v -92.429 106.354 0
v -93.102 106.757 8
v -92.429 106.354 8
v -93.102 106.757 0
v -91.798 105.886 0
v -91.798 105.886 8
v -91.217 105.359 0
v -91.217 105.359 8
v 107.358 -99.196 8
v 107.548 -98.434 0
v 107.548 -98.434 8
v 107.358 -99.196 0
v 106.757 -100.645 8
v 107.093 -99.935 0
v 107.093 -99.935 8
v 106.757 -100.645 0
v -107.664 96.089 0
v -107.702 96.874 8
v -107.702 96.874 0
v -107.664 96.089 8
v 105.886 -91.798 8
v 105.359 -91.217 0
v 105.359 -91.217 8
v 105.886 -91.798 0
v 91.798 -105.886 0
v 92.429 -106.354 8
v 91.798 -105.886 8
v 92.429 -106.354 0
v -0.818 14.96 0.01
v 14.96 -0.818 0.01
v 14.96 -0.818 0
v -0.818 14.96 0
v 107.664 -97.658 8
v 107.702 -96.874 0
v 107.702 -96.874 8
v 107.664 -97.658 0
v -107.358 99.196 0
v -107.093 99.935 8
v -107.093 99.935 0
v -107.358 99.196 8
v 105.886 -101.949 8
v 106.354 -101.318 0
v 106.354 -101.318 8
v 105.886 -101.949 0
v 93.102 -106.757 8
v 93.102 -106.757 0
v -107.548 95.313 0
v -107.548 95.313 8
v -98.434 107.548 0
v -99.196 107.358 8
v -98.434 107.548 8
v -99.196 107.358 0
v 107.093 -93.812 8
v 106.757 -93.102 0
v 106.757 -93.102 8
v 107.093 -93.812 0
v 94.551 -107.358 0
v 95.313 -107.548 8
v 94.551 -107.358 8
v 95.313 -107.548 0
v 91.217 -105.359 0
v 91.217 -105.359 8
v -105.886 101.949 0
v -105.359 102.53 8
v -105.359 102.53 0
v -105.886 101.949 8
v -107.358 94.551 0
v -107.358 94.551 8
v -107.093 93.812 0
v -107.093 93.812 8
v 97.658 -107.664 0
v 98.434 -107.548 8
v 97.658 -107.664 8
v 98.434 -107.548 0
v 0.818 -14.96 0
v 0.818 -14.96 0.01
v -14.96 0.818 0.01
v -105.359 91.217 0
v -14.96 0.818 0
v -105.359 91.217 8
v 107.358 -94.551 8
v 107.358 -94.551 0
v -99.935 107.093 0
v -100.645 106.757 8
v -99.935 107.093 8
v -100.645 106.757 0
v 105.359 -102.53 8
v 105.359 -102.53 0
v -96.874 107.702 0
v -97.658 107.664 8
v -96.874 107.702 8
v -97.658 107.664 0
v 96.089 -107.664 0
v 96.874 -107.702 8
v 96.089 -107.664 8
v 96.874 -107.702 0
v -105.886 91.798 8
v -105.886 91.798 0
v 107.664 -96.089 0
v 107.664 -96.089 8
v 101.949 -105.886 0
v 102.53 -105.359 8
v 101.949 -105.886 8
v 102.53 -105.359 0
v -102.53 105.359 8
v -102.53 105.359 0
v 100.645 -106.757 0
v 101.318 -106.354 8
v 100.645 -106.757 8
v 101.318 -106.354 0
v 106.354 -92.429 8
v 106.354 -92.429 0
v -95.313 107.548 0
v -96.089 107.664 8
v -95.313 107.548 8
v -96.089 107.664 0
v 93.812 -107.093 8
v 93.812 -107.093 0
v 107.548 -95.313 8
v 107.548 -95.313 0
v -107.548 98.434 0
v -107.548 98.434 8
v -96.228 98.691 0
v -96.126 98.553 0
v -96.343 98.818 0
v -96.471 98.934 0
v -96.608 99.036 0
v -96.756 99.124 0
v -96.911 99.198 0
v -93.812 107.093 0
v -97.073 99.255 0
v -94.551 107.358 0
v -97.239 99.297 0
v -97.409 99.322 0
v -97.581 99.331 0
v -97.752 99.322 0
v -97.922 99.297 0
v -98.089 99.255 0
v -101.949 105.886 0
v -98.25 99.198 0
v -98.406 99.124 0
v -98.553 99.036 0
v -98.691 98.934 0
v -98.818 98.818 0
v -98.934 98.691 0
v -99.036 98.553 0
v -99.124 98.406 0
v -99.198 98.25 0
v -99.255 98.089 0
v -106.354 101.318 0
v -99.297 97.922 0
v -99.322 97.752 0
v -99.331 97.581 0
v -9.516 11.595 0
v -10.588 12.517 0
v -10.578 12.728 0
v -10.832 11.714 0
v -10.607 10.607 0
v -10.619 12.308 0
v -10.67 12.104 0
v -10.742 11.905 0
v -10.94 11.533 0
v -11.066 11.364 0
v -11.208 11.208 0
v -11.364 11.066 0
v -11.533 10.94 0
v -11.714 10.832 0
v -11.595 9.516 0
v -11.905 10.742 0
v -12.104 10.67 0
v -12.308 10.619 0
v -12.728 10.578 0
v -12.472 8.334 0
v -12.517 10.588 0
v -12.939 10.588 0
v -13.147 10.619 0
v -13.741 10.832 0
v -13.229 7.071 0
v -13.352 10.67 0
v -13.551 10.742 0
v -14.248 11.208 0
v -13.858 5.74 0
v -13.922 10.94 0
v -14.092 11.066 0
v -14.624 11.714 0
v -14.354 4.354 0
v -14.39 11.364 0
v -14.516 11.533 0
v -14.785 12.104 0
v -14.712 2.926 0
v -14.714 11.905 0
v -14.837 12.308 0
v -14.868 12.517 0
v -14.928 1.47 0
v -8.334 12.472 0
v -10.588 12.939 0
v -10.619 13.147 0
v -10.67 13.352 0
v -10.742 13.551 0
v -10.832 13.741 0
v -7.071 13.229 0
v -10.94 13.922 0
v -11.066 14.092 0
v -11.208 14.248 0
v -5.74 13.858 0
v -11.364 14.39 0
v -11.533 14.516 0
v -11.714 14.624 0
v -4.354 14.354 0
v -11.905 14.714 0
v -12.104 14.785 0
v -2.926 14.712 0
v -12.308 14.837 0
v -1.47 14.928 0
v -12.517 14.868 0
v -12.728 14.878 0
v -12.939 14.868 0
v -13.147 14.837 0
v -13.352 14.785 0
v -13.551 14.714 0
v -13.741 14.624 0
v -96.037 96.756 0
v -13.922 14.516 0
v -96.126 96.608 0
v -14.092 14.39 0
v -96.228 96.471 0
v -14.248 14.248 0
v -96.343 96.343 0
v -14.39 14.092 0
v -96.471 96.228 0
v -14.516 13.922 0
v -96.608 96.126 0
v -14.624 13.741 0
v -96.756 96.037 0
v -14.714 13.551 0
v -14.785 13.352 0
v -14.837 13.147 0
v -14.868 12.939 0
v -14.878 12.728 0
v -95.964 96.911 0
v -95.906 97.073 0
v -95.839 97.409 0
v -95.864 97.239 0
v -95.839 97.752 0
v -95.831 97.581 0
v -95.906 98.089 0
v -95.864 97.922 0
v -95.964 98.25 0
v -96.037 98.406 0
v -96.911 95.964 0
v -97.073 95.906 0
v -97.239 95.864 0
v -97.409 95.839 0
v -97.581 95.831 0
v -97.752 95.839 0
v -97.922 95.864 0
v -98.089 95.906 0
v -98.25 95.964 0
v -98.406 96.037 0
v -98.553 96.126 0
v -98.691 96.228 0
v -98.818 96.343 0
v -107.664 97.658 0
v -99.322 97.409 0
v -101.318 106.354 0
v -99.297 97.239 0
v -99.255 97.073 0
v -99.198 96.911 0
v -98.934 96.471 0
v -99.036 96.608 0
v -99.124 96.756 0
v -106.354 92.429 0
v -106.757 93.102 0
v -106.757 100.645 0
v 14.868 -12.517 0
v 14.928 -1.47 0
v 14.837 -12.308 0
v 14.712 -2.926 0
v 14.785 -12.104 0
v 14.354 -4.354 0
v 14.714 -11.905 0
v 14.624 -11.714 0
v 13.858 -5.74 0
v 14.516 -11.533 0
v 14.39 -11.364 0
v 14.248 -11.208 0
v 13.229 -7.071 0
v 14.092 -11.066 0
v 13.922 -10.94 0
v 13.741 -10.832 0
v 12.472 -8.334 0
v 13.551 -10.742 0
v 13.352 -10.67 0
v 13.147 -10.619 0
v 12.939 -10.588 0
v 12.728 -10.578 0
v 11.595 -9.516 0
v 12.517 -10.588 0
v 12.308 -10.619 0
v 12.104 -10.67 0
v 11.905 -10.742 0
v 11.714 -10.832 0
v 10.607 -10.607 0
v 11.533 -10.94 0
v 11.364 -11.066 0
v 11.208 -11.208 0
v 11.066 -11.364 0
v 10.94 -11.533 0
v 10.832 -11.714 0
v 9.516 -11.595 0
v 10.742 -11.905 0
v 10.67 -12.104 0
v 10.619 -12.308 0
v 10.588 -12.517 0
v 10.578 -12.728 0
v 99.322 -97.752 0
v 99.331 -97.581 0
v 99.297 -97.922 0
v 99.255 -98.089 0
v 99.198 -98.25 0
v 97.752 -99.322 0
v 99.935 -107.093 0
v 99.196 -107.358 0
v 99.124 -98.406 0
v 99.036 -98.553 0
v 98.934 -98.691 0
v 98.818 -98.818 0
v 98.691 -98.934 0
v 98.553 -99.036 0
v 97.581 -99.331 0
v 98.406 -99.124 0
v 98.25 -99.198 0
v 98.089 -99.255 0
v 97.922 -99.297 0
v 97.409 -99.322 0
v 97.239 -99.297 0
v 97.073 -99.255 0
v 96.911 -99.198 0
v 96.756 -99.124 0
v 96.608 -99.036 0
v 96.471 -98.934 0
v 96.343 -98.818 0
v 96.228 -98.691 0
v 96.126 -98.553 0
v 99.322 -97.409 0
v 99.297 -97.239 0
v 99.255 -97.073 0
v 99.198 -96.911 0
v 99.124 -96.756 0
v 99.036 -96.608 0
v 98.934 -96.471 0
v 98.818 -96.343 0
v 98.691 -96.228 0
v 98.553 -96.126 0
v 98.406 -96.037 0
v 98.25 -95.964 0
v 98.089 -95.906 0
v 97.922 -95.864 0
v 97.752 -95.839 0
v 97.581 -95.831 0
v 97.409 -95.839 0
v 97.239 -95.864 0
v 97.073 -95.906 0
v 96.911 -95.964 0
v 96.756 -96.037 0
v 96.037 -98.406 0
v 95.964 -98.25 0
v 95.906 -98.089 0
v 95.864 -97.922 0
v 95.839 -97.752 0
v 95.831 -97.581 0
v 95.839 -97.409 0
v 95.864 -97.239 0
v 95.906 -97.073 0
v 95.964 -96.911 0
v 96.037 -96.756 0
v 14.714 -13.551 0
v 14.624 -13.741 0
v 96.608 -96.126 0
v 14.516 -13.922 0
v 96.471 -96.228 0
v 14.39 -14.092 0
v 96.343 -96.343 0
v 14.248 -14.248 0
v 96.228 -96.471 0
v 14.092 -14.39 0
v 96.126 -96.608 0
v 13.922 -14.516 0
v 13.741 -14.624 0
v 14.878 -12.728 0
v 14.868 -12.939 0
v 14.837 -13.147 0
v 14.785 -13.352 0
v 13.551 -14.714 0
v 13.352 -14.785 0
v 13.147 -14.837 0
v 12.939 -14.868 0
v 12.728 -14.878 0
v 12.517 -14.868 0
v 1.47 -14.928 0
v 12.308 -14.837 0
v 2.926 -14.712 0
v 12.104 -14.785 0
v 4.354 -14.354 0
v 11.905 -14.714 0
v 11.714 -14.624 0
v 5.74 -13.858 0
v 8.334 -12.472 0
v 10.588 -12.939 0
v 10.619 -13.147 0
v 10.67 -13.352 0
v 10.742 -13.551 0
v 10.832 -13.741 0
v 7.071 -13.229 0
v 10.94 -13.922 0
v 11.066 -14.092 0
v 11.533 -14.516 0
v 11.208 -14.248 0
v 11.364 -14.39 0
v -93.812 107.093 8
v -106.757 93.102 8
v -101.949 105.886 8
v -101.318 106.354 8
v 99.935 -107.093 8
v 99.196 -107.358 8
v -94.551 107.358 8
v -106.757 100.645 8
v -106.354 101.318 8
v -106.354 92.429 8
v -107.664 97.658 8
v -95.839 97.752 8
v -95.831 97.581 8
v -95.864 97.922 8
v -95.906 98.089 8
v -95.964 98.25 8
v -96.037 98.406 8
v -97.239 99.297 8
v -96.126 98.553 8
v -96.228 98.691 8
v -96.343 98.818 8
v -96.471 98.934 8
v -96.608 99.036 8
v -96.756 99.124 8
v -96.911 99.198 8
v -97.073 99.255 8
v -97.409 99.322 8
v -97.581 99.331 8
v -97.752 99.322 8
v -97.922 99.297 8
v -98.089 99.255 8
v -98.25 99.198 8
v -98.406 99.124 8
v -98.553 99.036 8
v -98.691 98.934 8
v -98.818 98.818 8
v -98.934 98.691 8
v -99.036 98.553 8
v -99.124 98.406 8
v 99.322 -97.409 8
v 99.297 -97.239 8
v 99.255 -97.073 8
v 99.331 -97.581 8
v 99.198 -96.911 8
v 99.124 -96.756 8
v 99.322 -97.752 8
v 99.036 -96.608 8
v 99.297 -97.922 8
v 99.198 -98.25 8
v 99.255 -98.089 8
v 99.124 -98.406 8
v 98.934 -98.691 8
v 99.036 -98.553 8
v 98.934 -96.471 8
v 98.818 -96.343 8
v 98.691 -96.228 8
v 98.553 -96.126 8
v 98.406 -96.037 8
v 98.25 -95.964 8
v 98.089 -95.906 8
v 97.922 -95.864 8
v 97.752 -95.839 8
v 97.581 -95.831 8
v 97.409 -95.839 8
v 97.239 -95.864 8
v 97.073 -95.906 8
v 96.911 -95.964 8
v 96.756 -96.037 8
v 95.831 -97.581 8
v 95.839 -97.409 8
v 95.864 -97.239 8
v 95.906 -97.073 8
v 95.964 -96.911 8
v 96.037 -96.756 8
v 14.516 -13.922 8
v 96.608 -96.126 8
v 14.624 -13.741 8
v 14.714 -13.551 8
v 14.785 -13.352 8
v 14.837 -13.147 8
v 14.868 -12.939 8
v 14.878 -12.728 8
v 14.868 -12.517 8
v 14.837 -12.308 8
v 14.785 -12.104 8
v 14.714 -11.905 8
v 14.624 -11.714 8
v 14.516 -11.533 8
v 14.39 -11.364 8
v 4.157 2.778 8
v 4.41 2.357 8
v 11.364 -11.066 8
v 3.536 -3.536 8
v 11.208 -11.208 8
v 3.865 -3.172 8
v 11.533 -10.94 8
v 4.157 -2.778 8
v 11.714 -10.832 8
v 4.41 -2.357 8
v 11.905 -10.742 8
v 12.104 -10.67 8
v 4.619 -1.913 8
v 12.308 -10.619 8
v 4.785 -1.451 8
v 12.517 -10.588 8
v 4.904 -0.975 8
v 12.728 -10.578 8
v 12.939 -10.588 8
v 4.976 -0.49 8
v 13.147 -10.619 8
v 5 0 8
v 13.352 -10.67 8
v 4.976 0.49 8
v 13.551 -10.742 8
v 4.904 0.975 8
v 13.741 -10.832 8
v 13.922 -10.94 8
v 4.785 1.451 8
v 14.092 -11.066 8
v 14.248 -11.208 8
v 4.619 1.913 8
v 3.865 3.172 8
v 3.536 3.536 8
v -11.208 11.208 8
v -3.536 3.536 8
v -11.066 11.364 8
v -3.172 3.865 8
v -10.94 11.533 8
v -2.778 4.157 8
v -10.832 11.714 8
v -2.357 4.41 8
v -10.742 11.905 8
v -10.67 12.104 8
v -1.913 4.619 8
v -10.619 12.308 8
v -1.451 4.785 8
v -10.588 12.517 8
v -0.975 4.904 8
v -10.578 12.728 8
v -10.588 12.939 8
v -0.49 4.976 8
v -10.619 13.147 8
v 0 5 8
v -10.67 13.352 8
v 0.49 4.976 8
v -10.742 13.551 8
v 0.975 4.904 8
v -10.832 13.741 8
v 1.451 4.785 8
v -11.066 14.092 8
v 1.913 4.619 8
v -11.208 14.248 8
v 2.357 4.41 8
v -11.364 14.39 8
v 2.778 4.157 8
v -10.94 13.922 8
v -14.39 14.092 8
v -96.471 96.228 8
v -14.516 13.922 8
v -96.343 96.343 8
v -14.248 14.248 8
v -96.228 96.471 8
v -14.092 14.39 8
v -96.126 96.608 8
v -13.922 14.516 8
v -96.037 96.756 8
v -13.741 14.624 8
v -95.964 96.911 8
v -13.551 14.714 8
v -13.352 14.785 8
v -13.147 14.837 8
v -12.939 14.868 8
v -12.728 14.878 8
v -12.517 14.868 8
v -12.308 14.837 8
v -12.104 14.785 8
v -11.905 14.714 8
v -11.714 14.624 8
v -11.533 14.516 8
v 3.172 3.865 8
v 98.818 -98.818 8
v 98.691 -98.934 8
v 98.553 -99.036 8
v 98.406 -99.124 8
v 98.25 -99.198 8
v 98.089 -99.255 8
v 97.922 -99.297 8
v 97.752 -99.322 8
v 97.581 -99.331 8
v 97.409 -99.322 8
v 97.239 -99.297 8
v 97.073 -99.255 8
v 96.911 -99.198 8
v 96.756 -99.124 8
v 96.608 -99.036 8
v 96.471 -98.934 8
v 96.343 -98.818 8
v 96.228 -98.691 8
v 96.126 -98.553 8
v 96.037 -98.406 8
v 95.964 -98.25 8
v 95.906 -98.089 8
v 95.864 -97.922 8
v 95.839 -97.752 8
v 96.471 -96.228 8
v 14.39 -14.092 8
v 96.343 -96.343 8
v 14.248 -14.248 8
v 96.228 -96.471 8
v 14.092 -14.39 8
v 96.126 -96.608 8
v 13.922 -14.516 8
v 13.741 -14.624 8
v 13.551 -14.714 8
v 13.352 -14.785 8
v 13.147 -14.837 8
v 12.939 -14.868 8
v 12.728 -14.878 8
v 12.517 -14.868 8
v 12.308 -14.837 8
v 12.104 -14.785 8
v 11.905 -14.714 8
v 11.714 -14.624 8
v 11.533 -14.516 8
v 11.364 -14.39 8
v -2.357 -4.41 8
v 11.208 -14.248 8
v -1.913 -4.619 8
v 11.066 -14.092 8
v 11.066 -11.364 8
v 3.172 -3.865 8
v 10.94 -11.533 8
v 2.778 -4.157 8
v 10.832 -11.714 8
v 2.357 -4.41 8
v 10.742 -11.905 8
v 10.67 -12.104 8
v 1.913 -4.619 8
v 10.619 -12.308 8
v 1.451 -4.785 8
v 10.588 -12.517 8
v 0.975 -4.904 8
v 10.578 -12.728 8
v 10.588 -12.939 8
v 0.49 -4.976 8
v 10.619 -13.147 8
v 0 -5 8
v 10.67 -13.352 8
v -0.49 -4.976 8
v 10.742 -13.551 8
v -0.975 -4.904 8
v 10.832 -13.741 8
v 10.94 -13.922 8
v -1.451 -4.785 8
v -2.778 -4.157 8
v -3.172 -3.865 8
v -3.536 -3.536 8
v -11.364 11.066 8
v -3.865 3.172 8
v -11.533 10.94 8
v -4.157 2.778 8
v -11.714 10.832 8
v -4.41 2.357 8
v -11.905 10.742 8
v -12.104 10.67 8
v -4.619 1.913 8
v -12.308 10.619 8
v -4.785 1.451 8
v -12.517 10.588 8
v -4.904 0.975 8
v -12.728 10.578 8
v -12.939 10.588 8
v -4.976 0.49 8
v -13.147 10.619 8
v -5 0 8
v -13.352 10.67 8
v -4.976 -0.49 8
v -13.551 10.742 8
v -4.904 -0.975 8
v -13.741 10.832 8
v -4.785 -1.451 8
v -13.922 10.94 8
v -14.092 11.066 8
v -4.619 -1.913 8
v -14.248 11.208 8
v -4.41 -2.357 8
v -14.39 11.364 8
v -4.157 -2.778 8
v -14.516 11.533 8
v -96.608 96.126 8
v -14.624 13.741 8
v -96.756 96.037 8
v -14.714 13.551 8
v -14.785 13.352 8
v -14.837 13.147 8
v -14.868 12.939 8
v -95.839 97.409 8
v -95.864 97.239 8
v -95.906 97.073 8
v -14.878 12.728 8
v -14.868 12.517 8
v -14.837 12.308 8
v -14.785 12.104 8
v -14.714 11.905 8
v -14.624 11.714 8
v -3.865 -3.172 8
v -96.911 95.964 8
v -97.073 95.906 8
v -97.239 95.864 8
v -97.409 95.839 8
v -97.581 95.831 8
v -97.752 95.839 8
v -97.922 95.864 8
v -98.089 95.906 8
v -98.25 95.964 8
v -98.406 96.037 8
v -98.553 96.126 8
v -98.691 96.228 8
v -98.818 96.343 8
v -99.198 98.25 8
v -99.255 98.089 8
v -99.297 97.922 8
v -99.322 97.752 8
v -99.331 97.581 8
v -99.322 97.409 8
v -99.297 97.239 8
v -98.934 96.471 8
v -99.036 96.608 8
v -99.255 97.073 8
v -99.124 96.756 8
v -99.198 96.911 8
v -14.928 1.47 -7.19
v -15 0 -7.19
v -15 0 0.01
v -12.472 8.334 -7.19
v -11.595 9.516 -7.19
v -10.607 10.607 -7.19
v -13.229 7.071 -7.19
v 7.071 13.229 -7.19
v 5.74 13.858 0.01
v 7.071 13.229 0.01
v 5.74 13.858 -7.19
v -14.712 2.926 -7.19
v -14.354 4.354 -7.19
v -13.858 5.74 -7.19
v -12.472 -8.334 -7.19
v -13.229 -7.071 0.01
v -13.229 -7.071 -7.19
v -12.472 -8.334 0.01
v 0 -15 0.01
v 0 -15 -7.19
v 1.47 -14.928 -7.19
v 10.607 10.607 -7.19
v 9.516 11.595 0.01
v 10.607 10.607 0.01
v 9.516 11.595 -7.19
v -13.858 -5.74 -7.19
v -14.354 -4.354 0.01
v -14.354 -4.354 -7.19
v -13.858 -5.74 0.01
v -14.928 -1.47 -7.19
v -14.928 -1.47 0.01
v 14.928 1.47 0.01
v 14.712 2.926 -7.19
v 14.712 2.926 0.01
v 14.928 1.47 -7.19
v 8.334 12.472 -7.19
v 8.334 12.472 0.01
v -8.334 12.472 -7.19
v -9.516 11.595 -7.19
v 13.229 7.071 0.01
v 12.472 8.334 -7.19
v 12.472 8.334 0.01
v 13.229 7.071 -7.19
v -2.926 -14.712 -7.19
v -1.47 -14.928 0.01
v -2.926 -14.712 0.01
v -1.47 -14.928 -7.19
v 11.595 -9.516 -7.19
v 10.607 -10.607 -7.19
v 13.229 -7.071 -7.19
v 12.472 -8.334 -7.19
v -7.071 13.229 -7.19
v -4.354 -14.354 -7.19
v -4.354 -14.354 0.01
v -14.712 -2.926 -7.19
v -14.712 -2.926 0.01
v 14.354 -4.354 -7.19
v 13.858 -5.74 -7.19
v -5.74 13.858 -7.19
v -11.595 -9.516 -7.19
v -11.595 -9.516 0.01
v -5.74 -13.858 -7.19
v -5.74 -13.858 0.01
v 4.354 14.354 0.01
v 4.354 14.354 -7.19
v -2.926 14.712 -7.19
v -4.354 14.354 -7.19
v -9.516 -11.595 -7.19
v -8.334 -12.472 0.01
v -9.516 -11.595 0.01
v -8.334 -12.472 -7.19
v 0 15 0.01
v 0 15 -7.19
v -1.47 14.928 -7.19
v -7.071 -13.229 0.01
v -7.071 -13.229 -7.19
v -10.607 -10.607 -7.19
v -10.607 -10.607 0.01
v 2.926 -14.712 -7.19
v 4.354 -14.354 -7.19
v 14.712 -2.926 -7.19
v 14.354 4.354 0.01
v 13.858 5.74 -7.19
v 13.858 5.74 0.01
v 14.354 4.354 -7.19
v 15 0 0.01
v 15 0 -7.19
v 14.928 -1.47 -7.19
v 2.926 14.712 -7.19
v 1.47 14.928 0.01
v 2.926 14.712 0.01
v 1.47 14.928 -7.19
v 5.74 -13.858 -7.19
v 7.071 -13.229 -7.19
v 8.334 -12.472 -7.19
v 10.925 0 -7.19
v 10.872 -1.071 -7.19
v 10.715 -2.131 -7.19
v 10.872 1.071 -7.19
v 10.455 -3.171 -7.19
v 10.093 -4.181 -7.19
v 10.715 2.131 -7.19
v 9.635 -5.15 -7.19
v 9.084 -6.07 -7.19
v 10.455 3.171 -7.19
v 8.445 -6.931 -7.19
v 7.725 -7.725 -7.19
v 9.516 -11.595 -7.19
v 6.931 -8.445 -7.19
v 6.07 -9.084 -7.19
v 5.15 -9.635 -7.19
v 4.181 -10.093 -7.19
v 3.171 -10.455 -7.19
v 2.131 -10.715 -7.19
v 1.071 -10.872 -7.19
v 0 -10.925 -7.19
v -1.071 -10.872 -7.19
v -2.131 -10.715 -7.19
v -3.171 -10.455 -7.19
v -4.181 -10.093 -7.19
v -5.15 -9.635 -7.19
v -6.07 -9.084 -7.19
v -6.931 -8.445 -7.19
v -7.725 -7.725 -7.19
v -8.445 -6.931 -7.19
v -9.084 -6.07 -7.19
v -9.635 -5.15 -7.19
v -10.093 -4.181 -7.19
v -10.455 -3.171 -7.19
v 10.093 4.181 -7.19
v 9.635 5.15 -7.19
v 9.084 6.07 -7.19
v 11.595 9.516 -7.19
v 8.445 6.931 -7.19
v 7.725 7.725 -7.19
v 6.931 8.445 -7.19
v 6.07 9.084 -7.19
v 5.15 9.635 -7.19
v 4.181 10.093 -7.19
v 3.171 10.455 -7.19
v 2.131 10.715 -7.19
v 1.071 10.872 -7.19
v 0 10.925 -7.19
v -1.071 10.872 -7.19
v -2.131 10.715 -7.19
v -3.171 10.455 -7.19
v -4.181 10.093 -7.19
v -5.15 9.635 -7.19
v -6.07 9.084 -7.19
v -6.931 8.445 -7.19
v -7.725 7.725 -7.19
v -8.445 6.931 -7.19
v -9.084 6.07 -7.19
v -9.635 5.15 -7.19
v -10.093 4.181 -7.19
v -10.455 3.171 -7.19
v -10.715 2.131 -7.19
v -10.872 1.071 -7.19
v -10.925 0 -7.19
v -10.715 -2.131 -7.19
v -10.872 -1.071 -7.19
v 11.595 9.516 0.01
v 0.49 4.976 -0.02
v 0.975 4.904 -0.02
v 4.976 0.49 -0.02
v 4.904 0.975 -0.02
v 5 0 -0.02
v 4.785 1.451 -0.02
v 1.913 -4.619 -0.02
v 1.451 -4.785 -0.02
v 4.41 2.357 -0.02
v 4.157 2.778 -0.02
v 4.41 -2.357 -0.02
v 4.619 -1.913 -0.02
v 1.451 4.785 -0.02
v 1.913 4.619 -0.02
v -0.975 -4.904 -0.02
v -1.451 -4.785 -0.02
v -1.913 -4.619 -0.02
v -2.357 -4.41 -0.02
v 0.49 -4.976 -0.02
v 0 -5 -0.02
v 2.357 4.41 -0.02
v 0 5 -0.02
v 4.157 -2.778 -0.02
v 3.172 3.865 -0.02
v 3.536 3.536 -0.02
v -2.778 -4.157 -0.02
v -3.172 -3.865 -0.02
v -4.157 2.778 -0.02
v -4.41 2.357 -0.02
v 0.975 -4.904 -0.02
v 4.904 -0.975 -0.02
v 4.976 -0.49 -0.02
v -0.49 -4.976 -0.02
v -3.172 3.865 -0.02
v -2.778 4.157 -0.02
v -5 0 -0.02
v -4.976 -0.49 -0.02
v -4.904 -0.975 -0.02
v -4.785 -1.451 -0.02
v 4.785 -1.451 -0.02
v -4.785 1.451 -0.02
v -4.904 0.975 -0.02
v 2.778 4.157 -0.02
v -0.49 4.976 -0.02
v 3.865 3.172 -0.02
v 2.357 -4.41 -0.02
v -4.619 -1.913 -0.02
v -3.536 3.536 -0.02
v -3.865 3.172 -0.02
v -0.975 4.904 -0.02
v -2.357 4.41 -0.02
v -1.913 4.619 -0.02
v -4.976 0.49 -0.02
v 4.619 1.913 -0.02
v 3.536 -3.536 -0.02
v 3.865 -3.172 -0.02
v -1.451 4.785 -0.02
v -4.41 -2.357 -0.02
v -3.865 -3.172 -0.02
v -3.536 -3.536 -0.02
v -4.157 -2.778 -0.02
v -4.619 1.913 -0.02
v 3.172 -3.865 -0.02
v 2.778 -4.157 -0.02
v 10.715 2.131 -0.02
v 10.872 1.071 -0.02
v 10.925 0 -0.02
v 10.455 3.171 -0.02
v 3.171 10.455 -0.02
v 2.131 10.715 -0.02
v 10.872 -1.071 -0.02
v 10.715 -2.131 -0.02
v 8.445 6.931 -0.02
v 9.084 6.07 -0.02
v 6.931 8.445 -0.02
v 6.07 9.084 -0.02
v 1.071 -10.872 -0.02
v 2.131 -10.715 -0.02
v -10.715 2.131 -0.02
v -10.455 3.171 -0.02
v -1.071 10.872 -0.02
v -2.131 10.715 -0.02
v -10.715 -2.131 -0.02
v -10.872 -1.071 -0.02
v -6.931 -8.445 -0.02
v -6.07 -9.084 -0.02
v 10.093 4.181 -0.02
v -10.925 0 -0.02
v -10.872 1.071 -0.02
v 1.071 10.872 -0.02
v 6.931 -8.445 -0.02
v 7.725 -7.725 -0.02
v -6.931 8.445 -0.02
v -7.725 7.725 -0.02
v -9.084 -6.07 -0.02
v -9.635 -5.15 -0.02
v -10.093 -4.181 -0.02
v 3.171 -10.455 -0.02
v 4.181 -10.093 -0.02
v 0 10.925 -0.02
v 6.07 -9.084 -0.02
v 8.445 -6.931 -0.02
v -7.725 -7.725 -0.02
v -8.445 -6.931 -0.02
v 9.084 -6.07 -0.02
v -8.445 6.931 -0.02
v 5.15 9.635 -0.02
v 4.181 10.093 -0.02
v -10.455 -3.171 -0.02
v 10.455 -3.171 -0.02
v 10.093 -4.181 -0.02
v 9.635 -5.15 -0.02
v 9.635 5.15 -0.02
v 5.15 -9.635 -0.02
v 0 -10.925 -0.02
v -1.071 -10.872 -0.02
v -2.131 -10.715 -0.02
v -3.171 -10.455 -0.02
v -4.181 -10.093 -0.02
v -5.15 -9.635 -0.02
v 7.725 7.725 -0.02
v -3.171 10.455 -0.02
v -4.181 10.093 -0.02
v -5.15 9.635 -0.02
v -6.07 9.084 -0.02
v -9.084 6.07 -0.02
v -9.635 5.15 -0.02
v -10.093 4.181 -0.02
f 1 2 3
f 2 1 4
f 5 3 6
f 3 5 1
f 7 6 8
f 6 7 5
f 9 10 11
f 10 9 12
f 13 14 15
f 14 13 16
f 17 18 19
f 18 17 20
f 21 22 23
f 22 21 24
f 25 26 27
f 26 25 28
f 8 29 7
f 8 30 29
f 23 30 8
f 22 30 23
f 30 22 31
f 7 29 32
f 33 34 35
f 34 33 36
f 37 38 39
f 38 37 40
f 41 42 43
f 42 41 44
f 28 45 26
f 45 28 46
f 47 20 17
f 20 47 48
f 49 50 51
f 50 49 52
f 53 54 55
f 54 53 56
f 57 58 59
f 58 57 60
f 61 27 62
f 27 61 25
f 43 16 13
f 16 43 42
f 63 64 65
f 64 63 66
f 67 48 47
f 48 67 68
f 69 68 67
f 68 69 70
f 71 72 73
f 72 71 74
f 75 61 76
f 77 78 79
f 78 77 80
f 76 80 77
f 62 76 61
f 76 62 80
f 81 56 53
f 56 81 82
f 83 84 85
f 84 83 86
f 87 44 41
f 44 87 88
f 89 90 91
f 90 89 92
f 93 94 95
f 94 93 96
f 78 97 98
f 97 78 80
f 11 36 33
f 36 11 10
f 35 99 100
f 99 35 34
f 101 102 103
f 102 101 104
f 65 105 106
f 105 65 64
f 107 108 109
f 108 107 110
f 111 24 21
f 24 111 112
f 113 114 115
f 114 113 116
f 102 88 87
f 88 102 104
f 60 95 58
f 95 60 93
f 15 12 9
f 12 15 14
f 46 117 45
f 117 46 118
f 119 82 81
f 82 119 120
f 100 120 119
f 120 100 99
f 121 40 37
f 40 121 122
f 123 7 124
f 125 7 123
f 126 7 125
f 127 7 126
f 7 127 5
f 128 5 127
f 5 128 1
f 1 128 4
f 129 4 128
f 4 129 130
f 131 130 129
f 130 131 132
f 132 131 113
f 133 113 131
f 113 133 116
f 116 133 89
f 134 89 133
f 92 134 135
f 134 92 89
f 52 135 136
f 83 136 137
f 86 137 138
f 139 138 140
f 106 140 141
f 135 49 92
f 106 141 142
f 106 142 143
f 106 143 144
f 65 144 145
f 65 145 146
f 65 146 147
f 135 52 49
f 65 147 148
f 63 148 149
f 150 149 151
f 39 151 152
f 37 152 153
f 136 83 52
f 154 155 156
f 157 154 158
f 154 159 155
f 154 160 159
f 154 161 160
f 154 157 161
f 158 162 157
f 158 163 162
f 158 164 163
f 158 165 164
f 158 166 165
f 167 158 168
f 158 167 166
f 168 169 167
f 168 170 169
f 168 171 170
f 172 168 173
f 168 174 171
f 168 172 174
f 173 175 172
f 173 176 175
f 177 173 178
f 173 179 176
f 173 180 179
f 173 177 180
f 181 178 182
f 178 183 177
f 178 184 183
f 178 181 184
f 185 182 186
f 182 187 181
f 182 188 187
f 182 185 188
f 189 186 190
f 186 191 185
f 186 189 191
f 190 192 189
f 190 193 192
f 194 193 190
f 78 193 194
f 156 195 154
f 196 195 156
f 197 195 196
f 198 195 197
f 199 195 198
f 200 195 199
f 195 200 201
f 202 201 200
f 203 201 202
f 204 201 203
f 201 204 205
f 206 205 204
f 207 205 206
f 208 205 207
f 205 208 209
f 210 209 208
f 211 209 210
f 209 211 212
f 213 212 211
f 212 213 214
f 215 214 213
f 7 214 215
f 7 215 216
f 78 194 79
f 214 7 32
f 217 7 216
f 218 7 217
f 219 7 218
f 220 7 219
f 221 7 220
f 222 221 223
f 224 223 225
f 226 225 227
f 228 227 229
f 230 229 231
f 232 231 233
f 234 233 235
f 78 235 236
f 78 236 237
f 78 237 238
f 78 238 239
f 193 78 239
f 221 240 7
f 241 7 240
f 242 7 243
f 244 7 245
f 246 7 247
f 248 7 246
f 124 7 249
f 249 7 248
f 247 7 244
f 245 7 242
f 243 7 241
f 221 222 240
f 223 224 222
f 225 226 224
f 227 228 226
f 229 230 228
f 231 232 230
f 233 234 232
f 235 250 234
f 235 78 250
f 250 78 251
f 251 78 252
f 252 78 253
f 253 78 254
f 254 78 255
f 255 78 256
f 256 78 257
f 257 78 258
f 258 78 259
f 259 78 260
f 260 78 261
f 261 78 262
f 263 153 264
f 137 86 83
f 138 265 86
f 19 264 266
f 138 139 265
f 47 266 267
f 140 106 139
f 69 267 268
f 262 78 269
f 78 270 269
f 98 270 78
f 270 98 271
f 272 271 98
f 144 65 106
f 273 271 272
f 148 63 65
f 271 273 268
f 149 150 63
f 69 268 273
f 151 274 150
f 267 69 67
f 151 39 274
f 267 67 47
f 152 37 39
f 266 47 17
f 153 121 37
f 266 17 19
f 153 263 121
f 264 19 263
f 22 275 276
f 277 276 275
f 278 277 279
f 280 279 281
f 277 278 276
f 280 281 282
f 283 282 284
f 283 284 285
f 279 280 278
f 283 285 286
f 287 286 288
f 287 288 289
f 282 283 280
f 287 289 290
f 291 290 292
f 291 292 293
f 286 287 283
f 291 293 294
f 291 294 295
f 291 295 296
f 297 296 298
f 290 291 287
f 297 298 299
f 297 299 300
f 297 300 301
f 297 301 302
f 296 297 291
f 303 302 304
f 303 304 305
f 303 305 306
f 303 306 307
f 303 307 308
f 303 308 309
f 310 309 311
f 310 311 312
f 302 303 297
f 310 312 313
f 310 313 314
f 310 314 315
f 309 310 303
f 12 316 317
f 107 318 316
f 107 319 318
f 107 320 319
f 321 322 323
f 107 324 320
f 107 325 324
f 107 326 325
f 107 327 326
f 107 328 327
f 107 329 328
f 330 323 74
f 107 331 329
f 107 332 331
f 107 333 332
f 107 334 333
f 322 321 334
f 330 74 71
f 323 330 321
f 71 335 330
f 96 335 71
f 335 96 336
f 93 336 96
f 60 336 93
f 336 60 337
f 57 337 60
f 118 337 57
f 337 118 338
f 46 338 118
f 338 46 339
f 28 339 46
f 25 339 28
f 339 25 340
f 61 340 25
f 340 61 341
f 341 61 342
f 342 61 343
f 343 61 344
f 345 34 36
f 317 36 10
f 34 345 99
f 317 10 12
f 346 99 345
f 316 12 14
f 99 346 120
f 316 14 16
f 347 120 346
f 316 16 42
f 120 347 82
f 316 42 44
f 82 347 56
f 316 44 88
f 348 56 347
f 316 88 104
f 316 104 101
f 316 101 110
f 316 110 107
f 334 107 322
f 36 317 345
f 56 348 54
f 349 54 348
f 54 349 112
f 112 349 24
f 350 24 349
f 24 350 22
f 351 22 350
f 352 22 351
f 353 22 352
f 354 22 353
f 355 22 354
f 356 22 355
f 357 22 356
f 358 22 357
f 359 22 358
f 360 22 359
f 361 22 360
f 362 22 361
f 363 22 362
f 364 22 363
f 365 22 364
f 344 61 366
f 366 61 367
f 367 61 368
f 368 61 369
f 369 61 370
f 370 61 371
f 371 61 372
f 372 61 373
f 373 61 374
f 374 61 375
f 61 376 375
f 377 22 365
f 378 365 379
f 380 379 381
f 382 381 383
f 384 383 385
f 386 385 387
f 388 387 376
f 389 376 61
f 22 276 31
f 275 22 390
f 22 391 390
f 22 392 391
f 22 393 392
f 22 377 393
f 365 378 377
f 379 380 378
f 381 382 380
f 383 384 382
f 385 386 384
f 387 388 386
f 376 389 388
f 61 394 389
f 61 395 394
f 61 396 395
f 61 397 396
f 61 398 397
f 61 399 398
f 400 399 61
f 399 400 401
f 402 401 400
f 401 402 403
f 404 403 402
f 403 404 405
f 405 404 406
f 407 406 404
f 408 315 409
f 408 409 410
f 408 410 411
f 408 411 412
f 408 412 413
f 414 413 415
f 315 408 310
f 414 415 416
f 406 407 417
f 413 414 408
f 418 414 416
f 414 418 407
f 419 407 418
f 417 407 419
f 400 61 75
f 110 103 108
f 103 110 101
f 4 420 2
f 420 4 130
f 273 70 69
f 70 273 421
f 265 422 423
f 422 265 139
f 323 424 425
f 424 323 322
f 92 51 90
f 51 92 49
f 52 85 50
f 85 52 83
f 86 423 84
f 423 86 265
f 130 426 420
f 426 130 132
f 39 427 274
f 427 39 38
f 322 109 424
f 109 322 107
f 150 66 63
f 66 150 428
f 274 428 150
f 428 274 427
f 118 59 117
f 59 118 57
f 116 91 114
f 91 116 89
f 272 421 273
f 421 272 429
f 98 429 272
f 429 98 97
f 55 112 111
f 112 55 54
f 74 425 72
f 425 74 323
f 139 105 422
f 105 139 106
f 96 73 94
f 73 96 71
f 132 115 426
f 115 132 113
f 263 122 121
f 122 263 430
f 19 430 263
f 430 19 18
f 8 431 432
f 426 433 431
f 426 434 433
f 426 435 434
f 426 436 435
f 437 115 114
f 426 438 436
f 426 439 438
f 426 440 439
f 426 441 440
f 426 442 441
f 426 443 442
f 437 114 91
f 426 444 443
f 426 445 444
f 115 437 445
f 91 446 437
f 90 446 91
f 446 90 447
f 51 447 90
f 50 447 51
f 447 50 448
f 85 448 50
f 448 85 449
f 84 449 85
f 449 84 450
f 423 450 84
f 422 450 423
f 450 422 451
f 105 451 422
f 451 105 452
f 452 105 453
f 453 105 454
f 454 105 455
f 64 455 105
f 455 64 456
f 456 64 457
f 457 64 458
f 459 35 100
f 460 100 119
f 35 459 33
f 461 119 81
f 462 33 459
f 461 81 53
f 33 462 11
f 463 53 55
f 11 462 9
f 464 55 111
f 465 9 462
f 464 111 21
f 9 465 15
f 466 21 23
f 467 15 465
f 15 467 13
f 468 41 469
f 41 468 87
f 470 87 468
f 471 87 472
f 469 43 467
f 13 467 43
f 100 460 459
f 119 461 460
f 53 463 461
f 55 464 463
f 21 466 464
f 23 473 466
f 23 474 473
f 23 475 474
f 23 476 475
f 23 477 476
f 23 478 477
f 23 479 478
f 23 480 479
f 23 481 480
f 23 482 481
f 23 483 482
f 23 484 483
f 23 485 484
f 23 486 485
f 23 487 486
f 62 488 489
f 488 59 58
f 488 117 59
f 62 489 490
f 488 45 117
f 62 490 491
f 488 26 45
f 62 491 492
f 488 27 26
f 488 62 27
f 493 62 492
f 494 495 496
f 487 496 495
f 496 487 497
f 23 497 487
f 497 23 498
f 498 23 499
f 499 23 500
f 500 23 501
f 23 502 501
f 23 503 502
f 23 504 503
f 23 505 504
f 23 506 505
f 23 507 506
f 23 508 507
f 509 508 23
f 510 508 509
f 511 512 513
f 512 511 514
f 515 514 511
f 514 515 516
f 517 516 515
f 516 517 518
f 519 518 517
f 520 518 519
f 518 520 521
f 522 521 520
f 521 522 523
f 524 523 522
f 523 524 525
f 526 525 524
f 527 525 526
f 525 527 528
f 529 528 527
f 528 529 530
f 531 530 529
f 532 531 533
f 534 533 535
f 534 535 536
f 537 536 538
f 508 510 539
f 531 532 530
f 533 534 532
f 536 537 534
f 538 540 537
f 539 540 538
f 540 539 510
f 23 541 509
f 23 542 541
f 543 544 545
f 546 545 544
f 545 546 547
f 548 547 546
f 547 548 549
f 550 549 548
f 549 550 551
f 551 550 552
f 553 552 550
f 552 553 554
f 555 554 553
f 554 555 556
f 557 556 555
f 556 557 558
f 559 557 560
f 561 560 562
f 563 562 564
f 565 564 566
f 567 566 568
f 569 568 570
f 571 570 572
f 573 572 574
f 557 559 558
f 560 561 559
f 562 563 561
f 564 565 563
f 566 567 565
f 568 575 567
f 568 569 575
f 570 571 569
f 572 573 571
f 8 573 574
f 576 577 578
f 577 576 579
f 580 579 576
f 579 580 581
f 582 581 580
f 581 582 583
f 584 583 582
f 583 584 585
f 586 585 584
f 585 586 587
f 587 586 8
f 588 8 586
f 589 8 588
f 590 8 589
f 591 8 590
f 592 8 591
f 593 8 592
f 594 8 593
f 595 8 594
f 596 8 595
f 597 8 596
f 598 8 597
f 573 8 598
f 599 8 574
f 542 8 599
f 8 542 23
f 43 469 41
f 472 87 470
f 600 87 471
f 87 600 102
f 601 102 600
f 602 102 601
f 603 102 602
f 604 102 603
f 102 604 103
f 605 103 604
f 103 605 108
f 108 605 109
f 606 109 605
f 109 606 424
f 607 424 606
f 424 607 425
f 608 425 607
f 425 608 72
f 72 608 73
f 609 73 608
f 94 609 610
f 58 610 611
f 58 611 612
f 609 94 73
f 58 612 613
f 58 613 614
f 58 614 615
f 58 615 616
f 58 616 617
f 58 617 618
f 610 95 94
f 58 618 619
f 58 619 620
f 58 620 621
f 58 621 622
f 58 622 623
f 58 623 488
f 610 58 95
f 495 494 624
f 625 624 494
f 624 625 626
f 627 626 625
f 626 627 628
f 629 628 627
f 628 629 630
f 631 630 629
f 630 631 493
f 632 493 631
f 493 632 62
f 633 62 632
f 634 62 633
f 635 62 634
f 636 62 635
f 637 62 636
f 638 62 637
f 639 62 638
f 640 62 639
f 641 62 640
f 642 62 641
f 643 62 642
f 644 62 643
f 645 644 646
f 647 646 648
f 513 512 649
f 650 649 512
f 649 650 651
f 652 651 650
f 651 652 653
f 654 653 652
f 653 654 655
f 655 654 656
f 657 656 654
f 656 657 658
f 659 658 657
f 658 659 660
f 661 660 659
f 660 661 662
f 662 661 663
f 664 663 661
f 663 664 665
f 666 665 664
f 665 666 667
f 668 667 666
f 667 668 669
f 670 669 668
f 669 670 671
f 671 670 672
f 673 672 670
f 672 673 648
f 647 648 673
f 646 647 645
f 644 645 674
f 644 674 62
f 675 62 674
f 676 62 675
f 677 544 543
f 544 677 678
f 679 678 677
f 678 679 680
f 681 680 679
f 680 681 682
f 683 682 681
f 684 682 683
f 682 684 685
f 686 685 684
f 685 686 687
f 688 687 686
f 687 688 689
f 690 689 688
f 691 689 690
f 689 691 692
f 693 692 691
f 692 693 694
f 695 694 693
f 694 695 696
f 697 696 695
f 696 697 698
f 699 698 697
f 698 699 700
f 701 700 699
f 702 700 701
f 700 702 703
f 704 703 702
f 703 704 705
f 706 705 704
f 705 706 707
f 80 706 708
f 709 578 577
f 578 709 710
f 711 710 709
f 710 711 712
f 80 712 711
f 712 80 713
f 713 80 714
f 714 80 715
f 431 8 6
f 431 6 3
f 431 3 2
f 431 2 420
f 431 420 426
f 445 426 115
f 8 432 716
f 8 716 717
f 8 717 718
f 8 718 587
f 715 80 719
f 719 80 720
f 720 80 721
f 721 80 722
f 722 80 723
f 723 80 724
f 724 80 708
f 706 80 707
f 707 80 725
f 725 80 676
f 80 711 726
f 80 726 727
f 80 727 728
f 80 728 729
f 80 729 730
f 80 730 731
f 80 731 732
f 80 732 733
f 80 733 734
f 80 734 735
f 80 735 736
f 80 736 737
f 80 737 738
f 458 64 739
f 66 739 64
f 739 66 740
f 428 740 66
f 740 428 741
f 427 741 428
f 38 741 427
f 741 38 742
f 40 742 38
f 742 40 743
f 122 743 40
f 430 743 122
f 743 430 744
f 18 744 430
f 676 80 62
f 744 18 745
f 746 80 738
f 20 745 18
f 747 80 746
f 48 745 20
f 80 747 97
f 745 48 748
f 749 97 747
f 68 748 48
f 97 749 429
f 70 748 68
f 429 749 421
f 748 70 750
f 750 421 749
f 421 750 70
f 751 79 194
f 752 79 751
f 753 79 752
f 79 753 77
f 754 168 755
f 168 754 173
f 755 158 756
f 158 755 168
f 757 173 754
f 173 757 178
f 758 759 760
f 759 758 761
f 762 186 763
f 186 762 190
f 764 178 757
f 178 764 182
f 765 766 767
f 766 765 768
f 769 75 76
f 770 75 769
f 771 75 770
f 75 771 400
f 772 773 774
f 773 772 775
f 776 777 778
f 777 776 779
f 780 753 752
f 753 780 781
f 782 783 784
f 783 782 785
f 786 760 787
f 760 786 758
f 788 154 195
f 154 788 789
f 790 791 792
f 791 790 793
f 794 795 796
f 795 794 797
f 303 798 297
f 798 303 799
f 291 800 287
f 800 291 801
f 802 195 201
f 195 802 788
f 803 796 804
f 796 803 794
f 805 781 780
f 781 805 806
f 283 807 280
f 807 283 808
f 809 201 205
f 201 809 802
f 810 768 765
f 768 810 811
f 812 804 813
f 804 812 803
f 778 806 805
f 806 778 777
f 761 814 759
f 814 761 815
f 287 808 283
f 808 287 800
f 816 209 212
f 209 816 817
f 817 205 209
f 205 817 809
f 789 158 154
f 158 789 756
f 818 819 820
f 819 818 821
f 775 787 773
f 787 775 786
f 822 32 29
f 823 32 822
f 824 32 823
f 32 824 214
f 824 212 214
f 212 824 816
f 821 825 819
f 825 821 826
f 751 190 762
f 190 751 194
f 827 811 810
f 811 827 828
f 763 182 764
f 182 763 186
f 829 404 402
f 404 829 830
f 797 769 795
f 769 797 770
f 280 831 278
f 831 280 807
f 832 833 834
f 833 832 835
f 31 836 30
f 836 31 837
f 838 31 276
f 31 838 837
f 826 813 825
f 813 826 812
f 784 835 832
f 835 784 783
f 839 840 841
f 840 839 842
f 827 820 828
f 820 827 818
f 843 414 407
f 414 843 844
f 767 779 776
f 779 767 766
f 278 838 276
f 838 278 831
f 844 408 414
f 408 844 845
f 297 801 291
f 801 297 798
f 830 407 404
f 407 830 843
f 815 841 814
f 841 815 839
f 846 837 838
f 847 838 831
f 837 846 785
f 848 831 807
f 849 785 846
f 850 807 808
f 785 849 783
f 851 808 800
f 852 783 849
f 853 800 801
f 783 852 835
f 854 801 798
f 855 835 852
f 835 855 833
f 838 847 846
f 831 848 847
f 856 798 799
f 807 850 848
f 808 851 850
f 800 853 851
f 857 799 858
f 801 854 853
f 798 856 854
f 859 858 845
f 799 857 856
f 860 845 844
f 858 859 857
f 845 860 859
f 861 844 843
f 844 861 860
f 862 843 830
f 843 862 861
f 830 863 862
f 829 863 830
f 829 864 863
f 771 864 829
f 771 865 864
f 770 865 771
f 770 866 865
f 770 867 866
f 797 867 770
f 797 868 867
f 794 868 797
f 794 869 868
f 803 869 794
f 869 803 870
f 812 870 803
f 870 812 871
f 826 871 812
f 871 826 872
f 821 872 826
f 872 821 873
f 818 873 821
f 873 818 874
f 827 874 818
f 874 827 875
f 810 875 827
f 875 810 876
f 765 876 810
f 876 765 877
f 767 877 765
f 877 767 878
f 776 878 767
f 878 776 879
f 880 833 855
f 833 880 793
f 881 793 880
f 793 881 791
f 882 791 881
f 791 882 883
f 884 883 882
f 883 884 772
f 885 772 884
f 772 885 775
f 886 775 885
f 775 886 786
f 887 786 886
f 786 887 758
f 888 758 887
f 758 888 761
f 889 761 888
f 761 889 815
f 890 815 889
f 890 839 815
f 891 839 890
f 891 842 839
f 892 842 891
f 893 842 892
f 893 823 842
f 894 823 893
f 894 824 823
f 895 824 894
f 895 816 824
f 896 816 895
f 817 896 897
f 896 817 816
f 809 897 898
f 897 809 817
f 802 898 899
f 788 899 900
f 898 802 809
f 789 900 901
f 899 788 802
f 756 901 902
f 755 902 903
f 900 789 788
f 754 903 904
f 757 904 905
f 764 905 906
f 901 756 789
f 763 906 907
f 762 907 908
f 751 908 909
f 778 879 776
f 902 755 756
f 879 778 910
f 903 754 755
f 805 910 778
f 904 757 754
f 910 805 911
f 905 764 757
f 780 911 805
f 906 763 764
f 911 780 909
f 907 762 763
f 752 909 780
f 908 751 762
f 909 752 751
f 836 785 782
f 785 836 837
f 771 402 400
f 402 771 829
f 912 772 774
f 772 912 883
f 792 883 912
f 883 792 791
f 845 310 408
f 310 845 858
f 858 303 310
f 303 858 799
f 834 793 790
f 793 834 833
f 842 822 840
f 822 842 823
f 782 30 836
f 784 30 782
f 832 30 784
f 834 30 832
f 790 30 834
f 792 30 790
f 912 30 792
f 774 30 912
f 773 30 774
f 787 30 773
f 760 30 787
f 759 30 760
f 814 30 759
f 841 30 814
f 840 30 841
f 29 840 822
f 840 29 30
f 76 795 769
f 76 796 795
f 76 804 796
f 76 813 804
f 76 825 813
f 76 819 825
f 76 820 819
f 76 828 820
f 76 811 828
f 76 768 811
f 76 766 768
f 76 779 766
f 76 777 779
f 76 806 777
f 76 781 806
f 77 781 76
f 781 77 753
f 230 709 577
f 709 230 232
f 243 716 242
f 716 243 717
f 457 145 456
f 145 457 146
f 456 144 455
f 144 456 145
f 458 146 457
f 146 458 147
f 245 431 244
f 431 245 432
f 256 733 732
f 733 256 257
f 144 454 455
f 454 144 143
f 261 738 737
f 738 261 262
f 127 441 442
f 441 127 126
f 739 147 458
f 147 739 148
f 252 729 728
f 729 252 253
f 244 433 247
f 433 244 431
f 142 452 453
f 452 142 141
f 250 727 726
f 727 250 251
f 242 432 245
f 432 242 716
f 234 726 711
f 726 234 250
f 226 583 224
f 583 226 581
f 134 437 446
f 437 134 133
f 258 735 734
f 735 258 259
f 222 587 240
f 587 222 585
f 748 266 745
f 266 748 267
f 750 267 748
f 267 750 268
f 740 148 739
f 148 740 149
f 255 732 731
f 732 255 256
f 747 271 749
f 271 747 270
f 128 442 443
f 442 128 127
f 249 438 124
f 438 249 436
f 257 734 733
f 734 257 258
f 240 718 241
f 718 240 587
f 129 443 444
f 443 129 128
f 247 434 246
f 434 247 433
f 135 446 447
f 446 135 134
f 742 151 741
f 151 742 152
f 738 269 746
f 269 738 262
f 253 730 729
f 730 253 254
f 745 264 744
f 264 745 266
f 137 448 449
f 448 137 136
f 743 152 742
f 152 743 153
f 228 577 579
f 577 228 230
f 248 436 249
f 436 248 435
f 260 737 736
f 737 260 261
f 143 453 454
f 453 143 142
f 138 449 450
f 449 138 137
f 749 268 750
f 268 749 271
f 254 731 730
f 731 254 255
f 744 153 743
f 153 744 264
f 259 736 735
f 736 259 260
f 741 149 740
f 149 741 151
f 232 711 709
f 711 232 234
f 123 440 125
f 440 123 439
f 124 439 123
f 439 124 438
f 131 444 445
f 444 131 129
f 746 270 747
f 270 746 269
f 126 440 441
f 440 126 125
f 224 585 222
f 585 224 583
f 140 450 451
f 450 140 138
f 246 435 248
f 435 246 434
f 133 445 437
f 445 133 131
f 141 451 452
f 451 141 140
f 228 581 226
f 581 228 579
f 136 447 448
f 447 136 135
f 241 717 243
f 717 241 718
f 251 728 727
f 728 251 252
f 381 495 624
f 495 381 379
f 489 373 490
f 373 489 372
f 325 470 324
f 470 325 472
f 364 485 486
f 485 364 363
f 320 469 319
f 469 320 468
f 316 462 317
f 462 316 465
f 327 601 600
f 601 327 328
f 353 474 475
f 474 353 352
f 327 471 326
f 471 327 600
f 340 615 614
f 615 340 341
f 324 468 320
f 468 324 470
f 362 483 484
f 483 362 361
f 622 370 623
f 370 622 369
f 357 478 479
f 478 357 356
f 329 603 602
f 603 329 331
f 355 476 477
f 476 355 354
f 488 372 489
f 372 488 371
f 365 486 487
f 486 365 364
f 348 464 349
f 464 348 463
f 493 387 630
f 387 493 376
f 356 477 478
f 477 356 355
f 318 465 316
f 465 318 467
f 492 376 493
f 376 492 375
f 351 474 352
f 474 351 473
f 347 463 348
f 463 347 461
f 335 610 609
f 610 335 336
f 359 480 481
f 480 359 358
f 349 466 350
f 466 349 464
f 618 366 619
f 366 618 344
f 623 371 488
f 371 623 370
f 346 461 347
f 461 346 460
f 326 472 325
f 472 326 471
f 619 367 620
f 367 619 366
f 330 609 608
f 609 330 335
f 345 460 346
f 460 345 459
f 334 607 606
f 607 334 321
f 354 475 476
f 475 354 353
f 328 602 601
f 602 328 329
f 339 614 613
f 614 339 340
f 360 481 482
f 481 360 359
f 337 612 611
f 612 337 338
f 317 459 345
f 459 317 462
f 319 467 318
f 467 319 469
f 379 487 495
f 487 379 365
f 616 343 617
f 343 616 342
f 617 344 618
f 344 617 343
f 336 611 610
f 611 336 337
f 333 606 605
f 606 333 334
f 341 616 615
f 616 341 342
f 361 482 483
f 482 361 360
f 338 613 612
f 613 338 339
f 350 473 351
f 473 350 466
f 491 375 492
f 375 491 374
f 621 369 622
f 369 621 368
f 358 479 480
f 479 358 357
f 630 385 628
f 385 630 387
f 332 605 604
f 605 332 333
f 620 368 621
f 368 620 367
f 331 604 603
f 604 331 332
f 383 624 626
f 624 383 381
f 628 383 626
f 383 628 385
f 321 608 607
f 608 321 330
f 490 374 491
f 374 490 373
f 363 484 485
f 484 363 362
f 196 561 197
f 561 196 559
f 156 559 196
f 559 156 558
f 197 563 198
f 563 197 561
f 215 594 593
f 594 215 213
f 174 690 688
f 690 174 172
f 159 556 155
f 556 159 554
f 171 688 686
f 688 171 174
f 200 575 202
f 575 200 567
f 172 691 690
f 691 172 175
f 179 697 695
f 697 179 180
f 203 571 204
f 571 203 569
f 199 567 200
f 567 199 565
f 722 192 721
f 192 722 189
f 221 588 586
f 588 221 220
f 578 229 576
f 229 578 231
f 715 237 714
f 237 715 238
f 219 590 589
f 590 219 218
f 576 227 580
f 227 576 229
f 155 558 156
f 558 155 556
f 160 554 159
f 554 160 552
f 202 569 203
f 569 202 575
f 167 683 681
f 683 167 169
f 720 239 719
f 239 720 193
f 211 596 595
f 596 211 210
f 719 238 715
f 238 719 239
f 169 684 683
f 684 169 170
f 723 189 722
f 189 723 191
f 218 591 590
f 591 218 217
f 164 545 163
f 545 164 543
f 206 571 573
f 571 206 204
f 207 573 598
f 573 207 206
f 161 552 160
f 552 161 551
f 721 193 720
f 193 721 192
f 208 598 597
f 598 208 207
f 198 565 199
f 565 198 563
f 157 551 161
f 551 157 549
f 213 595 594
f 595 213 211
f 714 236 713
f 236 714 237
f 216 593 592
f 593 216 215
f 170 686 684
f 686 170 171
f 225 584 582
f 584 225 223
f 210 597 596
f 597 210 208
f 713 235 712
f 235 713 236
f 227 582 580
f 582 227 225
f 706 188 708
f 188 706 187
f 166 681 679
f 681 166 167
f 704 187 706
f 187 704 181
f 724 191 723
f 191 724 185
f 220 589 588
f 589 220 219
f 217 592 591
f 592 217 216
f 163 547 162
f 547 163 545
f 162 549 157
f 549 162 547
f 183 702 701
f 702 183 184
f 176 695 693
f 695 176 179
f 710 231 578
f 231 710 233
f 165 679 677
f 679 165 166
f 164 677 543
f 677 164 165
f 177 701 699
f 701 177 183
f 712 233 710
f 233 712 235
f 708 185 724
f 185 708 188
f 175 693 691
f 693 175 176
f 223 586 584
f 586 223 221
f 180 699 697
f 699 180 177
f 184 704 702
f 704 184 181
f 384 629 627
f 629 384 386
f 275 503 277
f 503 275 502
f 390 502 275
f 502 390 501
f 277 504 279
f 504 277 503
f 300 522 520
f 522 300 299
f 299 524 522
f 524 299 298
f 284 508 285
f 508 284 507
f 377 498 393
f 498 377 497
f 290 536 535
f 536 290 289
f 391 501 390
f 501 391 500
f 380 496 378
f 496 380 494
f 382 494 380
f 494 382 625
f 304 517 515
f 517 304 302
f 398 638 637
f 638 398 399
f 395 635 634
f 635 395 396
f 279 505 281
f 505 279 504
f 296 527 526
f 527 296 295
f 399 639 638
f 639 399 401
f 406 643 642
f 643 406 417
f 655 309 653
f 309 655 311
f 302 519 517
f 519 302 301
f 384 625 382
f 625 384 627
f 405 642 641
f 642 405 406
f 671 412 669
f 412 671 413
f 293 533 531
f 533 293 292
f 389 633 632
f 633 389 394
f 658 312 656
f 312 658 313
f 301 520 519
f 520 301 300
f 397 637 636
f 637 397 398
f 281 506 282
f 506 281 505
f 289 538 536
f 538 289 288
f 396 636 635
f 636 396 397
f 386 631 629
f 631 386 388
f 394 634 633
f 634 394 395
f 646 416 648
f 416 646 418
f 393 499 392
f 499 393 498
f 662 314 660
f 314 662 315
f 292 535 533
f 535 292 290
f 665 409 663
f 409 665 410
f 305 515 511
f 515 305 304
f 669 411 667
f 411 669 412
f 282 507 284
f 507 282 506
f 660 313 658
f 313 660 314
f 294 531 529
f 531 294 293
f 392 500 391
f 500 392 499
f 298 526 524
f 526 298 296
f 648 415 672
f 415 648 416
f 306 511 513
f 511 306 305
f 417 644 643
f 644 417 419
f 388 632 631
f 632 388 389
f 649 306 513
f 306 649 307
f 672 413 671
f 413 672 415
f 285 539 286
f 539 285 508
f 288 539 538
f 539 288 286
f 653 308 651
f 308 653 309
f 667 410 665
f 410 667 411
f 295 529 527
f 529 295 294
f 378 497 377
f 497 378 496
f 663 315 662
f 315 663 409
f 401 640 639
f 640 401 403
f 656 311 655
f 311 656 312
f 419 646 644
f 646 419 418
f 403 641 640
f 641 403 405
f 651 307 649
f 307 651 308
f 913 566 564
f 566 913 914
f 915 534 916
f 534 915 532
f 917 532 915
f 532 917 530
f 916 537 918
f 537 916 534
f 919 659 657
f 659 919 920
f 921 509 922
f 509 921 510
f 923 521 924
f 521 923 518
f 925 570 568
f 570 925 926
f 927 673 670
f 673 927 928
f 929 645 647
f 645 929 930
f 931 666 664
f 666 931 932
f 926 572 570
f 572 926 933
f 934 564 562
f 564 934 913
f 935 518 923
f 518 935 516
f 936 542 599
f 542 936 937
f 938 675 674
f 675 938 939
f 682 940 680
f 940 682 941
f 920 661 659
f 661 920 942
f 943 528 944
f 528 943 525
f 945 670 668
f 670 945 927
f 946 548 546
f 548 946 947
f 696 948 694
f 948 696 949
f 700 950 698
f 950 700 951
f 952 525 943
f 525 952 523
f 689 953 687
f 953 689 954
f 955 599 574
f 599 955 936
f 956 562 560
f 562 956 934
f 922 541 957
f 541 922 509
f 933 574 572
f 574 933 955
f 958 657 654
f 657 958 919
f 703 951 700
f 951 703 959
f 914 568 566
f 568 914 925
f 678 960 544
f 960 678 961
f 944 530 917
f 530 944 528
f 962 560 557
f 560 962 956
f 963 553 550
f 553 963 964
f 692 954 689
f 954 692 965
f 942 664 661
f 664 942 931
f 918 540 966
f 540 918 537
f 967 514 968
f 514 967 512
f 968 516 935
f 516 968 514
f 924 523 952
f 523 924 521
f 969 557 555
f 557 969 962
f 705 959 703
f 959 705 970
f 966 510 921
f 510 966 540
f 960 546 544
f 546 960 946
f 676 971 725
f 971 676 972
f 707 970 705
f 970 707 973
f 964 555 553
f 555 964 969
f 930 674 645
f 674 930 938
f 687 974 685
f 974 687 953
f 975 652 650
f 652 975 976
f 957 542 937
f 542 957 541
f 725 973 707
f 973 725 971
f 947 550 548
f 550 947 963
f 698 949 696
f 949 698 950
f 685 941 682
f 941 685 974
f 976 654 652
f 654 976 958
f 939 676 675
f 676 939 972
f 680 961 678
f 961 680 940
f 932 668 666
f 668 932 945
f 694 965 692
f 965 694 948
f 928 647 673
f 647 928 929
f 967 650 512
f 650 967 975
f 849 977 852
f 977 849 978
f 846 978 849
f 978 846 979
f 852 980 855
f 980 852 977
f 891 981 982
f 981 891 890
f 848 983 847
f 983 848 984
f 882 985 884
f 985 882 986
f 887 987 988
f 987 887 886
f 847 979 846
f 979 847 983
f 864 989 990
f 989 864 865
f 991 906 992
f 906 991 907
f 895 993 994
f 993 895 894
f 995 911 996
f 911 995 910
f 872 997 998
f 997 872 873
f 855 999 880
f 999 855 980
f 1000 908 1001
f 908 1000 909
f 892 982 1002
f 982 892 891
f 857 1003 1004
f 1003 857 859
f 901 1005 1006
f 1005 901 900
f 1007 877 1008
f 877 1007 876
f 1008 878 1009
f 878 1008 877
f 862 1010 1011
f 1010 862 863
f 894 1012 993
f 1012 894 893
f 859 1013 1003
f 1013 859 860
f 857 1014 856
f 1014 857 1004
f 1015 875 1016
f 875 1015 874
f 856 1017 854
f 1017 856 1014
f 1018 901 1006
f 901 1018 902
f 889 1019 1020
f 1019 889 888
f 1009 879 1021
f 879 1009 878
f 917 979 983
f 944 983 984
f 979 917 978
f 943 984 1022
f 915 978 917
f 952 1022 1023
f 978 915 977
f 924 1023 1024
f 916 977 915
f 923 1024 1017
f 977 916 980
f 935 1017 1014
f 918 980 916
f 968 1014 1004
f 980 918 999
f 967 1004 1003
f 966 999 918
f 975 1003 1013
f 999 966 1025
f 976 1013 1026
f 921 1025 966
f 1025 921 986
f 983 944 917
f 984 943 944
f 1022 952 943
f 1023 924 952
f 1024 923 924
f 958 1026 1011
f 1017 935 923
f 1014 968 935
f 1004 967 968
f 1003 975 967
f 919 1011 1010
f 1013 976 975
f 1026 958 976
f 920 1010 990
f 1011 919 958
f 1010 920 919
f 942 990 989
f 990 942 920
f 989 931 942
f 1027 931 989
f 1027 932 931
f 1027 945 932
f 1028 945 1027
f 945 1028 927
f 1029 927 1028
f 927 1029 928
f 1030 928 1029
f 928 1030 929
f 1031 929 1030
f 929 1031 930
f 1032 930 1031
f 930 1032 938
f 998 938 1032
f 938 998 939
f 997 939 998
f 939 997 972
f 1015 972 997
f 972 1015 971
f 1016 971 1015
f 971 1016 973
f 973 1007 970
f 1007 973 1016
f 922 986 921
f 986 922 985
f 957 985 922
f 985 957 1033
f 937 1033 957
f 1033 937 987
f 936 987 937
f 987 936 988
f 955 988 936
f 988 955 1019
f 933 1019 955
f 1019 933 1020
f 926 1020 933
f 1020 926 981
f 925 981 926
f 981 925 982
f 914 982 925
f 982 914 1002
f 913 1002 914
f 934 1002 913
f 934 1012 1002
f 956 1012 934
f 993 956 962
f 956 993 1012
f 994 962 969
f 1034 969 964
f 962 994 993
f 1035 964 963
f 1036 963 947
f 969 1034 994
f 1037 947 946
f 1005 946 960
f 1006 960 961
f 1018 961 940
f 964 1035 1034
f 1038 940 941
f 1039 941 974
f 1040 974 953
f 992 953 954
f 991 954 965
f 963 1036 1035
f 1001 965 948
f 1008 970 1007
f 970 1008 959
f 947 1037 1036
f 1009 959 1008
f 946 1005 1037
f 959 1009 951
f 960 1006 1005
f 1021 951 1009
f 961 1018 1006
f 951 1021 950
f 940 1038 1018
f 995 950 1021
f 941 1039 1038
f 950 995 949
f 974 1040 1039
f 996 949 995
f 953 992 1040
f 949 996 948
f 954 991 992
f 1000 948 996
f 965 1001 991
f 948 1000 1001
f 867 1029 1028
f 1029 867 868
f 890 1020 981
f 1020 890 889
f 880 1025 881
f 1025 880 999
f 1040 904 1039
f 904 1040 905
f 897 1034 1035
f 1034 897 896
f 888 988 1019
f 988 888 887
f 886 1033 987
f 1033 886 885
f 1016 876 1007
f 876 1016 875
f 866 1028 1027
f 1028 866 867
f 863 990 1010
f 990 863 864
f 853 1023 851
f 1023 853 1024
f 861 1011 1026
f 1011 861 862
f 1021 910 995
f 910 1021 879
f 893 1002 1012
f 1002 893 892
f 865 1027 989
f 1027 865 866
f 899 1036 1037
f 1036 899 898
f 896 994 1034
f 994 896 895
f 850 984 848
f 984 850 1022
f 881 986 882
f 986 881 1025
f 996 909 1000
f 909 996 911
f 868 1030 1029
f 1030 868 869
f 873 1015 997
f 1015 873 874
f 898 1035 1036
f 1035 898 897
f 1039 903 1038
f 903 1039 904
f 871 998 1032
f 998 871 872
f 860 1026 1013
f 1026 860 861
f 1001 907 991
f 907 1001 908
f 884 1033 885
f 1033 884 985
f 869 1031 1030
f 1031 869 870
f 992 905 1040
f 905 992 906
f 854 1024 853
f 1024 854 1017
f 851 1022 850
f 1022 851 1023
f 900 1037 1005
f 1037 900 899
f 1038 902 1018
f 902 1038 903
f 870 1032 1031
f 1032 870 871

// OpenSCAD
// Gen-DM — rear BEARING BRIDGE (bar endbell, 2026-10-10): a 608 boss on a 20 mm wide bar that spans the
// two frame rods at 135 deg and 135+180 deg (R = flange_bolt_r). The front bridge uses the rods at 45/225 deg, the rear
// bridge the rods at 135/315 deg, so the two bridges cross at 90 deg and the stator is held at 4 points.
// A bar instead of a full disc is what lets this big-ring kit fit ONE 410 mm plate. Print flat face DOWN (boss up, no supports).
// Brace holes (temporary M4 jack rods, R = brace_r) sit on the bar axis.
include <parameters.scad>;
$fn = 64;
bar_w = 20;
bar_len = 2 * (flange_bolt_r + 9);
module bar_2d() { offset(r=8) offset(delta=-8) square([bar_len, bar_w], center=true); }
difference() {
    rotate([0, 0, 135]) union() {
        linear_extrude(endbell_thick) bar_2d();
        translate([0, 0, -bearing_h + 0.01]) cylinder(d=30, h=bearing_h);
    }
    translate([0, 0, -bearing_h - 0.1]) cylinder(d=endbell_shaft_clear, h=50);
    translate([0, 0, -bearing_h - 0.02]) cylinder(d=bearing_d, h=bearing_h);
    for (s = [0, 180]) rotate([0, 0, 135 + s]) translate([flange_bolt_r, 0, -20]) cylinder(d=m3_clear, h=60);
    for (a = brace_angles) translate([brace_r*cos(a), brace_r*sin(a), -20]) cylinder(d=brace_d, h=50);
}
